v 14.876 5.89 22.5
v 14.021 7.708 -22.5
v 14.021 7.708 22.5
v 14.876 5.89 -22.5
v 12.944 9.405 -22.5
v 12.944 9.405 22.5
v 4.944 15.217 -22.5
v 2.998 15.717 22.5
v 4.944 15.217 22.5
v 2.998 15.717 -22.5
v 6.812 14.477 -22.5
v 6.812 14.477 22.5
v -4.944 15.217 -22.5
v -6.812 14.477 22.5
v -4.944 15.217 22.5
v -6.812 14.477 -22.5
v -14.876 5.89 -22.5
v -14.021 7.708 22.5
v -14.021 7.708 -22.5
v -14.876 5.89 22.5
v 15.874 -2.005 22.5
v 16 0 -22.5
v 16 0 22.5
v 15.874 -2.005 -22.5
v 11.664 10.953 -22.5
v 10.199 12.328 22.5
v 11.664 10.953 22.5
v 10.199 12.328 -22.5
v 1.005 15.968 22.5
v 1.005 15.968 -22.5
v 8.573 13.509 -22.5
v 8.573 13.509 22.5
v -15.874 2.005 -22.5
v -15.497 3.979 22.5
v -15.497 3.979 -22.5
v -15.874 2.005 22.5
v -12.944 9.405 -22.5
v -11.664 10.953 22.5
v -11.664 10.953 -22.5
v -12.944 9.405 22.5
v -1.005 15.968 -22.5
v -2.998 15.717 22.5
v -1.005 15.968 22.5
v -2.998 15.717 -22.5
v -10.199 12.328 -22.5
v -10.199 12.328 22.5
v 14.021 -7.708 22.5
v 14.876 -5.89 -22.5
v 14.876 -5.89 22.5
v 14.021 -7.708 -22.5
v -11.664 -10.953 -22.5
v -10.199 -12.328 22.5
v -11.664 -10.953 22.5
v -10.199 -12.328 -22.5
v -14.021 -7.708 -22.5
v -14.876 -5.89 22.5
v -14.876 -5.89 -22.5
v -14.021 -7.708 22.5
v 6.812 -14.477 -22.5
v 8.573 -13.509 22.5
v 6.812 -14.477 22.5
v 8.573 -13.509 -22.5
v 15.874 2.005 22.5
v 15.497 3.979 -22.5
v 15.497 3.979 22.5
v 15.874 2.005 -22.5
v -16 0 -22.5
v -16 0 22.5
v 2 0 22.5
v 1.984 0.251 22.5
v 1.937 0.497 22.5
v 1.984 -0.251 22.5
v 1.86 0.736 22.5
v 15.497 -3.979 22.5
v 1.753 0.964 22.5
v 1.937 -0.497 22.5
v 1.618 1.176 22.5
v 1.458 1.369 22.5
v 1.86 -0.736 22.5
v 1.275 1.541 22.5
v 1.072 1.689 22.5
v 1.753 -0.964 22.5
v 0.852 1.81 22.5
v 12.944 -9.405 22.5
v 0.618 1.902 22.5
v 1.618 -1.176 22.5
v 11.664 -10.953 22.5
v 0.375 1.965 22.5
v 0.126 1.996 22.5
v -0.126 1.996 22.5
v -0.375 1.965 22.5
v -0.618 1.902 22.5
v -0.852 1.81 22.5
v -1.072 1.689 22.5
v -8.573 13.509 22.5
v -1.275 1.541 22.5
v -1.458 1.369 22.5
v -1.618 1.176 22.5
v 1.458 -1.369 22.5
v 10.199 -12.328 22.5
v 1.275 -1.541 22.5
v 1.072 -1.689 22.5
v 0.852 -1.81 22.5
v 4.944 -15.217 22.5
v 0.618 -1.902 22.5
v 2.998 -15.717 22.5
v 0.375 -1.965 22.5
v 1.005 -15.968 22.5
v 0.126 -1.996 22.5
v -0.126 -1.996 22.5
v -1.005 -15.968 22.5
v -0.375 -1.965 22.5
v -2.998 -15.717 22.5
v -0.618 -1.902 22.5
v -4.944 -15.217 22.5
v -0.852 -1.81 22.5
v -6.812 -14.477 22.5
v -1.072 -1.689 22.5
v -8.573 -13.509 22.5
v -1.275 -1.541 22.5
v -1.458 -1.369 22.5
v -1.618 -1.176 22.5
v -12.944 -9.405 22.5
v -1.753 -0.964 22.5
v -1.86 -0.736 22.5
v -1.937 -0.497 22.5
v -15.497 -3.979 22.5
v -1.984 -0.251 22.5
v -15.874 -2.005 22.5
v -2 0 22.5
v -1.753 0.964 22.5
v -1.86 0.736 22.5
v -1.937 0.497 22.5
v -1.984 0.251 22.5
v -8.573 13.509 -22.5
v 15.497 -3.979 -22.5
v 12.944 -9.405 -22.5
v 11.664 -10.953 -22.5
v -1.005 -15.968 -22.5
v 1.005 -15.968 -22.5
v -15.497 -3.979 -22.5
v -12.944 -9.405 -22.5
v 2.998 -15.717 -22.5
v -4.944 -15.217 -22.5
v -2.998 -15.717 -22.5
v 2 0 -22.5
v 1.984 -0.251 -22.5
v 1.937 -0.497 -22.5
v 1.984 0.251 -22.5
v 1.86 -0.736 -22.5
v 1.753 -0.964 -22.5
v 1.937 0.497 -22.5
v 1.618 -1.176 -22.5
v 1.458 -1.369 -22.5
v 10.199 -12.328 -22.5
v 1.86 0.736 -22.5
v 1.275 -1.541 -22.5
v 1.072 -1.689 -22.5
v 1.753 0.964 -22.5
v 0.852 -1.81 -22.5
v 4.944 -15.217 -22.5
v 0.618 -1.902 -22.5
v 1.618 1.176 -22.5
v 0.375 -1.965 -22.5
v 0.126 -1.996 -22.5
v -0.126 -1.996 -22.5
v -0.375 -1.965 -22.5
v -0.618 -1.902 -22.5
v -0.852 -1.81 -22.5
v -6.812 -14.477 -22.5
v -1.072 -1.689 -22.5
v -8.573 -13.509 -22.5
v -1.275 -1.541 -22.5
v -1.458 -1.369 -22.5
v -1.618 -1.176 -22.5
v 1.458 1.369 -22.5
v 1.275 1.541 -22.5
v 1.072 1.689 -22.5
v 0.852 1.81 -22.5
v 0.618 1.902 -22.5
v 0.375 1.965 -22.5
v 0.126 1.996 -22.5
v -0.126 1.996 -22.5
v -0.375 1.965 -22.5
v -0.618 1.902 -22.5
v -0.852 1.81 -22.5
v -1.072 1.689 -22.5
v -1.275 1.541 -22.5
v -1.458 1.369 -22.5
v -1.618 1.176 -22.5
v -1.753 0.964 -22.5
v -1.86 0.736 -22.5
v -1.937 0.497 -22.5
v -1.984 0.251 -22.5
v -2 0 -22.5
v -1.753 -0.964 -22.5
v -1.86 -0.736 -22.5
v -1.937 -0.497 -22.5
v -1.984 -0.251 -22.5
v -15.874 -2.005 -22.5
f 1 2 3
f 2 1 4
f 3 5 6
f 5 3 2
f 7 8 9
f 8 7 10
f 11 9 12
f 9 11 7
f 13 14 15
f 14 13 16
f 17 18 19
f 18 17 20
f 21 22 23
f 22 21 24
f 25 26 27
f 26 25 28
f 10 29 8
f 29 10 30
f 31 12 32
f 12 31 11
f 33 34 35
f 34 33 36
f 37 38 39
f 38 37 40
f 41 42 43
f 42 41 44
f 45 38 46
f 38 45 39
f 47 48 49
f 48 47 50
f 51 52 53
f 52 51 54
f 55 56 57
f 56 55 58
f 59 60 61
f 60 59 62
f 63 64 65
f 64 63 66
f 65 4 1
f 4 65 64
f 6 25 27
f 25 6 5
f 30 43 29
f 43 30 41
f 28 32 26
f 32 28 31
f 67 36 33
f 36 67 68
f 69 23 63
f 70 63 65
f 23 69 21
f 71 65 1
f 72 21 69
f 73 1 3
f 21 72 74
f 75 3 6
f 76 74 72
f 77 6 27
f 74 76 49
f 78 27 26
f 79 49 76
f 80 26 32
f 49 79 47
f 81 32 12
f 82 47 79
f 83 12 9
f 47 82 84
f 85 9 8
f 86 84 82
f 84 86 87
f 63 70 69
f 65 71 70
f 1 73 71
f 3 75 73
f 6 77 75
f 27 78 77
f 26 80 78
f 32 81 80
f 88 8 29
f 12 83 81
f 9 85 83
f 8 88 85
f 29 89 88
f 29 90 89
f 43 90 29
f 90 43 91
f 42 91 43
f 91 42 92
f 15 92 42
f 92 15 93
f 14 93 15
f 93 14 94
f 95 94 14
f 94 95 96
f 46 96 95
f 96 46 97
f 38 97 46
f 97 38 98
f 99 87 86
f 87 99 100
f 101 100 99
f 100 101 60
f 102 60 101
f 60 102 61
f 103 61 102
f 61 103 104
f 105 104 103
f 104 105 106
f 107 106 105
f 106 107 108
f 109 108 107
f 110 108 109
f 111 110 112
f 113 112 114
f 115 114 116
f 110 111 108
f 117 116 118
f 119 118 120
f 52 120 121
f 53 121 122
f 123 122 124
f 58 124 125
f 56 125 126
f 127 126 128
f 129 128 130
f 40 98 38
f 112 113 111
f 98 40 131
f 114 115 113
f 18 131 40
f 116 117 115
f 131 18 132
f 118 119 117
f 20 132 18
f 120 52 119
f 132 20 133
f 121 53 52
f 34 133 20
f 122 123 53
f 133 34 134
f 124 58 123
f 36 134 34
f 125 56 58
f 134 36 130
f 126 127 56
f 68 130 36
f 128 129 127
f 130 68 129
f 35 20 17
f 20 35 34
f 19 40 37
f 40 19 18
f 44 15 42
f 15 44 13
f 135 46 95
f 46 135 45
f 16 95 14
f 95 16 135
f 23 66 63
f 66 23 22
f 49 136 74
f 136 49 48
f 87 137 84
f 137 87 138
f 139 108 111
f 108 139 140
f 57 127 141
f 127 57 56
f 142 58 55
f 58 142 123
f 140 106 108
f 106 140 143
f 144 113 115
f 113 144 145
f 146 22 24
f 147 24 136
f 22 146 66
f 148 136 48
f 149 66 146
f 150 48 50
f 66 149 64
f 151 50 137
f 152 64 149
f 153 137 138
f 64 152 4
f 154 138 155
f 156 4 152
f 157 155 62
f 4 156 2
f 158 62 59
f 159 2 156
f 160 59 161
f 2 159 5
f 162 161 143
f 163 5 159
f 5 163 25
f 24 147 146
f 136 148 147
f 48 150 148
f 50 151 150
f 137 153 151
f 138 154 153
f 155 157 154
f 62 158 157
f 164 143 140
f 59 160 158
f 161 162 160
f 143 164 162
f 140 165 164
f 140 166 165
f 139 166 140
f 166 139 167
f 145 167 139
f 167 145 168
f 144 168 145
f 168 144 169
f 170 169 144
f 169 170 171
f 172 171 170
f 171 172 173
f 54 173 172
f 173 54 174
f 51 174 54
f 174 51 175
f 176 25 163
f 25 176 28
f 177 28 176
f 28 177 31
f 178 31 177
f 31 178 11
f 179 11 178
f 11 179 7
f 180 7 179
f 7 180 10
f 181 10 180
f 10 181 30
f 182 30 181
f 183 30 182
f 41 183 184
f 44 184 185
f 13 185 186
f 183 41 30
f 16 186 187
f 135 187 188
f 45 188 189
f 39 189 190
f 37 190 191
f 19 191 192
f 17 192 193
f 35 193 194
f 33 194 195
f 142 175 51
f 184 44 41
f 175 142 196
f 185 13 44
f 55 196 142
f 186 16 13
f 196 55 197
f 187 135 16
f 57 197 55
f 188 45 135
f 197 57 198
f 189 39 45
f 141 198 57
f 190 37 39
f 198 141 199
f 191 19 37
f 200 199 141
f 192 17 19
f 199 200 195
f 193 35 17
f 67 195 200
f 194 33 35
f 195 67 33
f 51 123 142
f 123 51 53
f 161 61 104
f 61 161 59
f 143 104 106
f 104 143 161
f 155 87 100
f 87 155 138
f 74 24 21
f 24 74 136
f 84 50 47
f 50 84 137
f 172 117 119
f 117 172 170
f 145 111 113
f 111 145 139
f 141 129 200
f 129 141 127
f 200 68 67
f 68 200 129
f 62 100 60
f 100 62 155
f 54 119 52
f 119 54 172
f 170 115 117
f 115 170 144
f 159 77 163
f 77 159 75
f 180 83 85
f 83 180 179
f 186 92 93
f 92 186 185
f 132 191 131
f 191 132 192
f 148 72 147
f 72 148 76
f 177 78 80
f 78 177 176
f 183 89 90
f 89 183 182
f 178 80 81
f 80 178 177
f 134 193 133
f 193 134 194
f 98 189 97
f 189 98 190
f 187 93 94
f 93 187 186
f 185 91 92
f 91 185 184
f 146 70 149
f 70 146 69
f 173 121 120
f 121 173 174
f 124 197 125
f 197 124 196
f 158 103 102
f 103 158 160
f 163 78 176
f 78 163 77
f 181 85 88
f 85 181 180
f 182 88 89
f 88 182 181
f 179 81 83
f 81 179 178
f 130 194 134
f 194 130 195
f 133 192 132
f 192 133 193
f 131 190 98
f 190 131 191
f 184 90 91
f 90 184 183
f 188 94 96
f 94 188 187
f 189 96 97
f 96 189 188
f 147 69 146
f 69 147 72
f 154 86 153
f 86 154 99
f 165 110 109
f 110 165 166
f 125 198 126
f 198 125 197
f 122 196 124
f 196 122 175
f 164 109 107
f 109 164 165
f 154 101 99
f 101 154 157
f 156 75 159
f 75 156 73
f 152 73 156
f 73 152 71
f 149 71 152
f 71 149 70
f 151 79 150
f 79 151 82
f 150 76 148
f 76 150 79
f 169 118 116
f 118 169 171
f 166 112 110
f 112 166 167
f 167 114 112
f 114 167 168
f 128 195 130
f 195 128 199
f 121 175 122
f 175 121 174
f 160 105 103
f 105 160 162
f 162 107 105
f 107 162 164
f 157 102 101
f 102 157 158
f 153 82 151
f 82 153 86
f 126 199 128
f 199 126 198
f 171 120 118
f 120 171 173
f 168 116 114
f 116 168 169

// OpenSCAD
$fn = 50;


difference() {
	union() {
		translate(v = [0, 0, -22.5000000000]) {
			cylinder(h = 45, r = 16.0000000000);
		}
	}
	union() {
		translate(v = [0, 0, -100.0000000000]) {
			cylinder(h = 200, r = 2);
		}
	}
}
